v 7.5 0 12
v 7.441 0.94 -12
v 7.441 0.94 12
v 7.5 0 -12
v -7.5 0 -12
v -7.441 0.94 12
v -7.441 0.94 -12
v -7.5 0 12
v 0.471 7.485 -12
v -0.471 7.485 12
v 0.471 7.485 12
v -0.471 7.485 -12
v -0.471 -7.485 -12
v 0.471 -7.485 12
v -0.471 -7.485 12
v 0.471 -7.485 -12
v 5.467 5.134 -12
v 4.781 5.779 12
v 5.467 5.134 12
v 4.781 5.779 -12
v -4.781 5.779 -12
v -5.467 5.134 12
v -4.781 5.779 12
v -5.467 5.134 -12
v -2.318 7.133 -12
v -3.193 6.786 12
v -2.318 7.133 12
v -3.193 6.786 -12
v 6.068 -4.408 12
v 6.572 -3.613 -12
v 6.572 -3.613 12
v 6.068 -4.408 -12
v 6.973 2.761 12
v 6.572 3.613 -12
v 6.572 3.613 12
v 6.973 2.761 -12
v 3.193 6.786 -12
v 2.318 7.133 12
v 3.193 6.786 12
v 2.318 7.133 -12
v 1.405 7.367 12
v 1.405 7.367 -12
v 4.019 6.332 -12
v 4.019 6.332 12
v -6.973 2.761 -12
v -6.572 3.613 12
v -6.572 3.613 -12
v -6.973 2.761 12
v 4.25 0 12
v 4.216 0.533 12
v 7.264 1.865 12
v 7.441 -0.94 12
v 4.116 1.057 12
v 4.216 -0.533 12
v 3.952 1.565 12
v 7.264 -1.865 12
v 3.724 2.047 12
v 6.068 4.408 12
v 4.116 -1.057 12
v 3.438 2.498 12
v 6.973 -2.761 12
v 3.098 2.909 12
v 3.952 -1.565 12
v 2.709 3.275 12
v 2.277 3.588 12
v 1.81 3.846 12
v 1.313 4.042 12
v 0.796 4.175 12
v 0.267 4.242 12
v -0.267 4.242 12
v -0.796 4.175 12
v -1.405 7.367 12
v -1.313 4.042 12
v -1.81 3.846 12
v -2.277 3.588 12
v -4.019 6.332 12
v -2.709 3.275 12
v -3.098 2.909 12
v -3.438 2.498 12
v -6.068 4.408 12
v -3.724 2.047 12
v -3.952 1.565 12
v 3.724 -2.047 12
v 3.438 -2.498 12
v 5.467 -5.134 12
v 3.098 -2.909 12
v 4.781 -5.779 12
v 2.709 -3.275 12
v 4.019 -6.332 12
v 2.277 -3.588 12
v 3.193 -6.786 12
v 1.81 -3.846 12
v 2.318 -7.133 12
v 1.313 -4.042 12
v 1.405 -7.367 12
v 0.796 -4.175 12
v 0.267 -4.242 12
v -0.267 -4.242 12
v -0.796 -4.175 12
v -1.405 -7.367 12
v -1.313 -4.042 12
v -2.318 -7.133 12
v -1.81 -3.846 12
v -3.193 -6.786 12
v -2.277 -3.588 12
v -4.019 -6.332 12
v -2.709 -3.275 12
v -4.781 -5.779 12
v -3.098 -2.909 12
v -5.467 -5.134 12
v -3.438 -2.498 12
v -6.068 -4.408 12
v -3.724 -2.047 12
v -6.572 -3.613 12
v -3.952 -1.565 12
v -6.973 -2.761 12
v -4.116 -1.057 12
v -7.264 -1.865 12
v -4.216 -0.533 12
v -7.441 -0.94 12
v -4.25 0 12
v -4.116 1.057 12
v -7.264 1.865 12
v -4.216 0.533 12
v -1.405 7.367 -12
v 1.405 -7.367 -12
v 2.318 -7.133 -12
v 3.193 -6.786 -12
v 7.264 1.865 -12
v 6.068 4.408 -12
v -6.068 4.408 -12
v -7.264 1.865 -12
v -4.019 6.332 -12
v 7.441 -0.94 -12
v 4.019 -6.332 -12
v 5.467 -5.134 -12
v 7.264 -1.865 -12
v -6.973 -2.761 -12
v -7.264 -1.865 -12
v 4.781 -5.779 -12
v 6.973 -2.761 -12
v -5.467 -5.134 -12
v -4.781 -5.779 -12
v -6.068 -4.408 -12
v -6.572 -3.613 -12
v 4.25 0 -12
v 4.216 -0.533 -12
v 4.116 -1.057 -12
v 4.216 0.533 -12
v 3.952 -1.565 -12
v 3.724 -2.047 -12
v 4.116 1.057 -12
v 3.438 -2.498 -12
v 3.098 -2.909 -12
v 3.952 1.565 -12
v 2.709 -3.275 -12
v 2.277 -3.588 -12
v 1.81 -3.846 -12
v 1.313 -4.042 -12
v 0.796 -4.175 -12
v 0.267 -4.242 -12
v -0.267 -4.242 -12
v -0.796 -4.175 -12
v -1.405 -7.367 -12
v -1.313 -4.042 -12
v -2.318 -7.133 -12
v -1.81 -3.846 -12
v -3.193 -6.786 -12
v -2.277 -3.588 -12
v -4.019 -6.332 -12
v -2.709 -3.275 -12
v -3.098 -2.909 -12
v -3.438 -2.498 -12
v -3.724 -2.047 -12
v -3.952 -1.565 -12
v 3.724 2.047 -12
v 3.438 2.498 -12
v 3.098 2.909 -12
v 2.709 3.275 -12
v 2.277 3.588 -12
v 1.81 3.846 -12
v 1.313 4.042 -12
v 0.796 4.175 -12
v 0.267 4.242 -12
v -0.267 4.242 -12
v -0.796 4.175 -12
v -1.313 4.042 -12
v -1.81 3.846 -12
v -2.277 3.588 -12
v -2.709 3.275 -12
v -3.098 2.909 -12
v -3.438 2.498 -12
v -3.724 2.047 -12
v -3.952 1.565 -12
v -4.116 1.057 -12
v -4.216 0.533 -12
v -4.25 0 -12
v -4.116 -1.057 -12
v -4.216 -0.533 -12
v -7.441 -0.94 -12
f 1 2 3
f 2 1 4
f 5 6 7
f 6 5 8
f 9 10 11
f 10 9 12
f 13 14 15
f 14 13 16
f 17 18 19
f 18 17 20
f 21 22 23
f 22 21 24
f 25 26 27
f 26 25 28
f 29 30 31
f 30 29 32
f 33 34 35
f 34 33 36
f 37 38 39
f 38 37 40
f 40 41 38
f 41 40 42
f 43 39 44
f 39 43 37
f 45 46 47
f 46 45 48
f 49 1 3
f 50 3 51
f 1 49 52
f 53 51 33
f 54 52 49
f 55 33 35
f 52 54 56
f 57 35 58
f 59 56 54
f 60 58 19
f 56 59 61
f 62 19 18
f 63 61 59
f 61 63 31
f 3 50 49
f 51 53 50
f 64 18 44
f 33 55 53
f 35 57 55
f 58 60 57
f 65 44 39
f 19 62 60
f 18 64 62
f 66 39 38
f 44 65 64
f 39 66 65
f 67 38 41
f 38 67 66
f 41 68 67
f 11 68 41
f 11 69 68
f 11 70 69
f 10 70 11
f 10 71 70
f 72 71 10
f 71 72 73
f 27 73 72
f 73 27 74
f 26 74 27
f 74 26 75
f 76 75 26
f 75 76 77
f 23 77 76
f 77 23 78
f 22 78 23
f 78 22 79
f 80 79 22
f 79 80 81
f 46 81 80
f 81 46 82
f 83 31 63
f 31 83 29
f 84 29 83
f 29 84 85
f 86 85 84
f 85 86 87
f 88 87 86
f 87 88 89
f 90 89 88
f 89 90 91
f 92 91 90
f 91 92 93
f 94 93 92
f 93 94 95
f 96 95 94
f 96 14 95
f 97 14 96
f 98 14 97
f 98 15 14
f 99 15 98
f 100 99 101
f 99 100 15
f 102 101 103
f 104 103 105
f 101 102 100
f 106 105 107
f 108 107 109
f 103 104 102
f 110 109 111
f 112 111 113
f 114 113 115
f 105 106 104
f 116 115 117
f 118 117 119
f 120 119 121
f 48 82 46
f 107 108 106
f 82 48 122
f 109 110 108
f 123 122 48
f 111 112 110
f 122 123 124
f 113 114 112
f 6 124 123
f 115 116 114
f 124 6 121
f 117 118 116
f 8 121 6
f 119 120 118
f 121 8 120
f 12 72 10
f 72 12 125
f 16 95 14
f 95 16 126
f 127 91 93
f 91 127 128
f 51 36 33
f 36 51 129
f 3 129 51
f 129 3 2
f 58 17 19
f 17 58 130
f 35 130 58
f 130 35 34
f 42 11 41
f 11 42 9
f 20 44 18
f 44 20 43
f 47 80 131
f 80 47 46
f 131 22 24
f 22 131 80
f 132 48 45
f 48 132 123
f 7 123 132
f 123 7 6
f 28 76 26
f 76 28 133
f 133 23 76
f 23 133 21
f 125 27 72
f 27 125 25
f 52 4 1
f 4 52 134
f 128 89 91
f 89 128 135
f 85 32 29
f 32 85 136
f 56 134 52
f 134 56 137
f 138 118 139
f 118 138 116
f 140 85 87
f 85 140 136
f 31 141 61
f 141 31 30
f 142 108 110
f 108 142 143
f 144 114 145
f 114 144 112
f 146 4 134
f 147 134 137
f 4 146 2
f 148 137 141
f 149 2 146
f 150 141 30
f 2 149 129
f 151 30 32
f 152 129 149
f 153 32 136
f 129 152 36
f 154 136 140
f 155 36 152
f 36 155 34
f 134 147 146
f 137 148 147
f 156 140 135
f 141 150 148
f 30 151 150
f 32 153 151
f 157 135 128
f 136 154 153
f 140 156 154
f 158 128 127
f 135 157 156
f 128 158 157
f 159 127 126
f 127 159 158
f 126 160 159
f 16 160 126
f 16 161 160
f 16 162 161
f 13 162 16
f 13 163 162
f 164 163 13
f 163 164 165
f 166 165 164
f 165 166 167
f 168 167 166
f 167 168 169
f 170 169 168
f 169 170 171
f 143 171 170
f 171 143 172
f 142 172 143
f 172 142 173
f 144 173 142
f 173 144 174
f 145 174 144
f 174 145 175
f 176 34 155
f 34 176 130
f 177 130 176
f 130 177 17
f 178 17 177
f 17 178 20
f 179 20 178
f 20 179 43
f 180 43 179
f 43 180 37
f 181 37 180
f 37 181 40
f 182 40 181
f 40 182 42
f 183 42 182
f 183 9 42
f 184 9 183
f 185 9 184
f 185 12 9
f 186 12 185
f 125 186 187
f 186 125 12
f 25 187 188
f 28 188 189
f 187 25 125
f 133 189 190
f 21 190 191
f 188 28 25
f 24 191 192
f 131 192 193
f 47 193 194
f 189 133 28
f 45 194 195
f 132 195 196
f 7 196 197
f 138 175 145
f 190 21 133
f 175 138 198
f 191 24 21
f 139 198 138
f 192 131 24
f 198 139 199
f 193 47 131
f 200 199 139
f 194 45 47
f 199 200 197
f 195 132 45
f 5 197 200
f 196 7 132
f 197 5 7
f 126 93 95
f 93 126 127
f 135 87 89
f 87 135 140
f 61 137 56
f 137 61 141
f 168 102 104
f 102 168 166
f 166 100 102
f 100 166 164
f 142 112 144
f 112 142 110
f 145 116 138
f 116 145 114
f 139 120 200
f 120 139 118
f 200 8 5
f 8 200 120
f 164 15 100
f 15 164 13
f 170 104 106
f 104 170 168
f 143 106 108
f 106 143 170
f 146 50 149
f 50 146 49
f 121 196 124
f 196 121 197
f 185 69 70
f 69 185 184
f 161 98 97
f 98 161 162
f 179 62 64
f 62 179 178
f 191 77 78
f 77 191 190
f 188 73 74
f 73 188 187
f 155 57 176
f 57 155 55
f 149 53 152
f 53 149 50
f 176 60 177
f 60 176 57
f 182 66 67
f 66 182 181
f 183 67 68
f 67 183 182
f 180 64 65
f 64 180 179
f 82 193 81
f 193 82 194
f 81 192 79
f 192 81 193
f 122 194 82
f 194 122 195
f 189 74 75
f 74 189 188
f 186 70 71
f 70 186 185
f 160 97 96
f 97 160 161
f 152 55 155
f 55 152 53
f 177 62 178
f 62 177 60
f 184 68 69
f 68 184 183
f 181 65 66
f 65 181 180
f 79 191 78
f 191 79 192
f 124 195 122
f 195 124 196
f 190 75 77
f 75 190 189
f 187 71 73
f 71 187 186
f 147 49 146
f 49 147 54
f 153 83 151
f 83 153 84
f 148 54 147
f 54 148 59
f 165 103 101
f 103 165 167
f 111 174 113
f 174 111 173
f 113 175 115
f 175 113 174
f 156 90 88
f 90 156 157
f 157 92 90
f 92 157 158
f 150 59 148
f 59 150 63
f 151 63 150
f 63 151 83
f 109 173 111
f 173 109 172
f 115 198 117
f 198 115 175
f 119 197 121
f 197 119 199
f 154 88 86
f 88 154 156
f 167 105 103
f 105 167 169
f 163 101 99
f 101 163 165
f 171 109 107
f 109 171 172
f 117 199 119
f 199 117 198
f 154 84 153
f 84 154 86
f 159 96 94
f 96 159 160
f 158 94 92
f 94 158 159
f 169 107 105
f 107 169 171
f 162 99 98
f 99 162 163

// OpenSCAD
$fn = 50;


difference() {
	union() {
		translate(v = [0, 0, -12.0000000000]) {
			cylinder(h = 24, r = 7.5000000000);
		}
	}
	union() {
		translate(v = [0, 0, -100.0000000000]) {
			cylinder(h = 200, r = 4.2500000000);
		}
	}
}
